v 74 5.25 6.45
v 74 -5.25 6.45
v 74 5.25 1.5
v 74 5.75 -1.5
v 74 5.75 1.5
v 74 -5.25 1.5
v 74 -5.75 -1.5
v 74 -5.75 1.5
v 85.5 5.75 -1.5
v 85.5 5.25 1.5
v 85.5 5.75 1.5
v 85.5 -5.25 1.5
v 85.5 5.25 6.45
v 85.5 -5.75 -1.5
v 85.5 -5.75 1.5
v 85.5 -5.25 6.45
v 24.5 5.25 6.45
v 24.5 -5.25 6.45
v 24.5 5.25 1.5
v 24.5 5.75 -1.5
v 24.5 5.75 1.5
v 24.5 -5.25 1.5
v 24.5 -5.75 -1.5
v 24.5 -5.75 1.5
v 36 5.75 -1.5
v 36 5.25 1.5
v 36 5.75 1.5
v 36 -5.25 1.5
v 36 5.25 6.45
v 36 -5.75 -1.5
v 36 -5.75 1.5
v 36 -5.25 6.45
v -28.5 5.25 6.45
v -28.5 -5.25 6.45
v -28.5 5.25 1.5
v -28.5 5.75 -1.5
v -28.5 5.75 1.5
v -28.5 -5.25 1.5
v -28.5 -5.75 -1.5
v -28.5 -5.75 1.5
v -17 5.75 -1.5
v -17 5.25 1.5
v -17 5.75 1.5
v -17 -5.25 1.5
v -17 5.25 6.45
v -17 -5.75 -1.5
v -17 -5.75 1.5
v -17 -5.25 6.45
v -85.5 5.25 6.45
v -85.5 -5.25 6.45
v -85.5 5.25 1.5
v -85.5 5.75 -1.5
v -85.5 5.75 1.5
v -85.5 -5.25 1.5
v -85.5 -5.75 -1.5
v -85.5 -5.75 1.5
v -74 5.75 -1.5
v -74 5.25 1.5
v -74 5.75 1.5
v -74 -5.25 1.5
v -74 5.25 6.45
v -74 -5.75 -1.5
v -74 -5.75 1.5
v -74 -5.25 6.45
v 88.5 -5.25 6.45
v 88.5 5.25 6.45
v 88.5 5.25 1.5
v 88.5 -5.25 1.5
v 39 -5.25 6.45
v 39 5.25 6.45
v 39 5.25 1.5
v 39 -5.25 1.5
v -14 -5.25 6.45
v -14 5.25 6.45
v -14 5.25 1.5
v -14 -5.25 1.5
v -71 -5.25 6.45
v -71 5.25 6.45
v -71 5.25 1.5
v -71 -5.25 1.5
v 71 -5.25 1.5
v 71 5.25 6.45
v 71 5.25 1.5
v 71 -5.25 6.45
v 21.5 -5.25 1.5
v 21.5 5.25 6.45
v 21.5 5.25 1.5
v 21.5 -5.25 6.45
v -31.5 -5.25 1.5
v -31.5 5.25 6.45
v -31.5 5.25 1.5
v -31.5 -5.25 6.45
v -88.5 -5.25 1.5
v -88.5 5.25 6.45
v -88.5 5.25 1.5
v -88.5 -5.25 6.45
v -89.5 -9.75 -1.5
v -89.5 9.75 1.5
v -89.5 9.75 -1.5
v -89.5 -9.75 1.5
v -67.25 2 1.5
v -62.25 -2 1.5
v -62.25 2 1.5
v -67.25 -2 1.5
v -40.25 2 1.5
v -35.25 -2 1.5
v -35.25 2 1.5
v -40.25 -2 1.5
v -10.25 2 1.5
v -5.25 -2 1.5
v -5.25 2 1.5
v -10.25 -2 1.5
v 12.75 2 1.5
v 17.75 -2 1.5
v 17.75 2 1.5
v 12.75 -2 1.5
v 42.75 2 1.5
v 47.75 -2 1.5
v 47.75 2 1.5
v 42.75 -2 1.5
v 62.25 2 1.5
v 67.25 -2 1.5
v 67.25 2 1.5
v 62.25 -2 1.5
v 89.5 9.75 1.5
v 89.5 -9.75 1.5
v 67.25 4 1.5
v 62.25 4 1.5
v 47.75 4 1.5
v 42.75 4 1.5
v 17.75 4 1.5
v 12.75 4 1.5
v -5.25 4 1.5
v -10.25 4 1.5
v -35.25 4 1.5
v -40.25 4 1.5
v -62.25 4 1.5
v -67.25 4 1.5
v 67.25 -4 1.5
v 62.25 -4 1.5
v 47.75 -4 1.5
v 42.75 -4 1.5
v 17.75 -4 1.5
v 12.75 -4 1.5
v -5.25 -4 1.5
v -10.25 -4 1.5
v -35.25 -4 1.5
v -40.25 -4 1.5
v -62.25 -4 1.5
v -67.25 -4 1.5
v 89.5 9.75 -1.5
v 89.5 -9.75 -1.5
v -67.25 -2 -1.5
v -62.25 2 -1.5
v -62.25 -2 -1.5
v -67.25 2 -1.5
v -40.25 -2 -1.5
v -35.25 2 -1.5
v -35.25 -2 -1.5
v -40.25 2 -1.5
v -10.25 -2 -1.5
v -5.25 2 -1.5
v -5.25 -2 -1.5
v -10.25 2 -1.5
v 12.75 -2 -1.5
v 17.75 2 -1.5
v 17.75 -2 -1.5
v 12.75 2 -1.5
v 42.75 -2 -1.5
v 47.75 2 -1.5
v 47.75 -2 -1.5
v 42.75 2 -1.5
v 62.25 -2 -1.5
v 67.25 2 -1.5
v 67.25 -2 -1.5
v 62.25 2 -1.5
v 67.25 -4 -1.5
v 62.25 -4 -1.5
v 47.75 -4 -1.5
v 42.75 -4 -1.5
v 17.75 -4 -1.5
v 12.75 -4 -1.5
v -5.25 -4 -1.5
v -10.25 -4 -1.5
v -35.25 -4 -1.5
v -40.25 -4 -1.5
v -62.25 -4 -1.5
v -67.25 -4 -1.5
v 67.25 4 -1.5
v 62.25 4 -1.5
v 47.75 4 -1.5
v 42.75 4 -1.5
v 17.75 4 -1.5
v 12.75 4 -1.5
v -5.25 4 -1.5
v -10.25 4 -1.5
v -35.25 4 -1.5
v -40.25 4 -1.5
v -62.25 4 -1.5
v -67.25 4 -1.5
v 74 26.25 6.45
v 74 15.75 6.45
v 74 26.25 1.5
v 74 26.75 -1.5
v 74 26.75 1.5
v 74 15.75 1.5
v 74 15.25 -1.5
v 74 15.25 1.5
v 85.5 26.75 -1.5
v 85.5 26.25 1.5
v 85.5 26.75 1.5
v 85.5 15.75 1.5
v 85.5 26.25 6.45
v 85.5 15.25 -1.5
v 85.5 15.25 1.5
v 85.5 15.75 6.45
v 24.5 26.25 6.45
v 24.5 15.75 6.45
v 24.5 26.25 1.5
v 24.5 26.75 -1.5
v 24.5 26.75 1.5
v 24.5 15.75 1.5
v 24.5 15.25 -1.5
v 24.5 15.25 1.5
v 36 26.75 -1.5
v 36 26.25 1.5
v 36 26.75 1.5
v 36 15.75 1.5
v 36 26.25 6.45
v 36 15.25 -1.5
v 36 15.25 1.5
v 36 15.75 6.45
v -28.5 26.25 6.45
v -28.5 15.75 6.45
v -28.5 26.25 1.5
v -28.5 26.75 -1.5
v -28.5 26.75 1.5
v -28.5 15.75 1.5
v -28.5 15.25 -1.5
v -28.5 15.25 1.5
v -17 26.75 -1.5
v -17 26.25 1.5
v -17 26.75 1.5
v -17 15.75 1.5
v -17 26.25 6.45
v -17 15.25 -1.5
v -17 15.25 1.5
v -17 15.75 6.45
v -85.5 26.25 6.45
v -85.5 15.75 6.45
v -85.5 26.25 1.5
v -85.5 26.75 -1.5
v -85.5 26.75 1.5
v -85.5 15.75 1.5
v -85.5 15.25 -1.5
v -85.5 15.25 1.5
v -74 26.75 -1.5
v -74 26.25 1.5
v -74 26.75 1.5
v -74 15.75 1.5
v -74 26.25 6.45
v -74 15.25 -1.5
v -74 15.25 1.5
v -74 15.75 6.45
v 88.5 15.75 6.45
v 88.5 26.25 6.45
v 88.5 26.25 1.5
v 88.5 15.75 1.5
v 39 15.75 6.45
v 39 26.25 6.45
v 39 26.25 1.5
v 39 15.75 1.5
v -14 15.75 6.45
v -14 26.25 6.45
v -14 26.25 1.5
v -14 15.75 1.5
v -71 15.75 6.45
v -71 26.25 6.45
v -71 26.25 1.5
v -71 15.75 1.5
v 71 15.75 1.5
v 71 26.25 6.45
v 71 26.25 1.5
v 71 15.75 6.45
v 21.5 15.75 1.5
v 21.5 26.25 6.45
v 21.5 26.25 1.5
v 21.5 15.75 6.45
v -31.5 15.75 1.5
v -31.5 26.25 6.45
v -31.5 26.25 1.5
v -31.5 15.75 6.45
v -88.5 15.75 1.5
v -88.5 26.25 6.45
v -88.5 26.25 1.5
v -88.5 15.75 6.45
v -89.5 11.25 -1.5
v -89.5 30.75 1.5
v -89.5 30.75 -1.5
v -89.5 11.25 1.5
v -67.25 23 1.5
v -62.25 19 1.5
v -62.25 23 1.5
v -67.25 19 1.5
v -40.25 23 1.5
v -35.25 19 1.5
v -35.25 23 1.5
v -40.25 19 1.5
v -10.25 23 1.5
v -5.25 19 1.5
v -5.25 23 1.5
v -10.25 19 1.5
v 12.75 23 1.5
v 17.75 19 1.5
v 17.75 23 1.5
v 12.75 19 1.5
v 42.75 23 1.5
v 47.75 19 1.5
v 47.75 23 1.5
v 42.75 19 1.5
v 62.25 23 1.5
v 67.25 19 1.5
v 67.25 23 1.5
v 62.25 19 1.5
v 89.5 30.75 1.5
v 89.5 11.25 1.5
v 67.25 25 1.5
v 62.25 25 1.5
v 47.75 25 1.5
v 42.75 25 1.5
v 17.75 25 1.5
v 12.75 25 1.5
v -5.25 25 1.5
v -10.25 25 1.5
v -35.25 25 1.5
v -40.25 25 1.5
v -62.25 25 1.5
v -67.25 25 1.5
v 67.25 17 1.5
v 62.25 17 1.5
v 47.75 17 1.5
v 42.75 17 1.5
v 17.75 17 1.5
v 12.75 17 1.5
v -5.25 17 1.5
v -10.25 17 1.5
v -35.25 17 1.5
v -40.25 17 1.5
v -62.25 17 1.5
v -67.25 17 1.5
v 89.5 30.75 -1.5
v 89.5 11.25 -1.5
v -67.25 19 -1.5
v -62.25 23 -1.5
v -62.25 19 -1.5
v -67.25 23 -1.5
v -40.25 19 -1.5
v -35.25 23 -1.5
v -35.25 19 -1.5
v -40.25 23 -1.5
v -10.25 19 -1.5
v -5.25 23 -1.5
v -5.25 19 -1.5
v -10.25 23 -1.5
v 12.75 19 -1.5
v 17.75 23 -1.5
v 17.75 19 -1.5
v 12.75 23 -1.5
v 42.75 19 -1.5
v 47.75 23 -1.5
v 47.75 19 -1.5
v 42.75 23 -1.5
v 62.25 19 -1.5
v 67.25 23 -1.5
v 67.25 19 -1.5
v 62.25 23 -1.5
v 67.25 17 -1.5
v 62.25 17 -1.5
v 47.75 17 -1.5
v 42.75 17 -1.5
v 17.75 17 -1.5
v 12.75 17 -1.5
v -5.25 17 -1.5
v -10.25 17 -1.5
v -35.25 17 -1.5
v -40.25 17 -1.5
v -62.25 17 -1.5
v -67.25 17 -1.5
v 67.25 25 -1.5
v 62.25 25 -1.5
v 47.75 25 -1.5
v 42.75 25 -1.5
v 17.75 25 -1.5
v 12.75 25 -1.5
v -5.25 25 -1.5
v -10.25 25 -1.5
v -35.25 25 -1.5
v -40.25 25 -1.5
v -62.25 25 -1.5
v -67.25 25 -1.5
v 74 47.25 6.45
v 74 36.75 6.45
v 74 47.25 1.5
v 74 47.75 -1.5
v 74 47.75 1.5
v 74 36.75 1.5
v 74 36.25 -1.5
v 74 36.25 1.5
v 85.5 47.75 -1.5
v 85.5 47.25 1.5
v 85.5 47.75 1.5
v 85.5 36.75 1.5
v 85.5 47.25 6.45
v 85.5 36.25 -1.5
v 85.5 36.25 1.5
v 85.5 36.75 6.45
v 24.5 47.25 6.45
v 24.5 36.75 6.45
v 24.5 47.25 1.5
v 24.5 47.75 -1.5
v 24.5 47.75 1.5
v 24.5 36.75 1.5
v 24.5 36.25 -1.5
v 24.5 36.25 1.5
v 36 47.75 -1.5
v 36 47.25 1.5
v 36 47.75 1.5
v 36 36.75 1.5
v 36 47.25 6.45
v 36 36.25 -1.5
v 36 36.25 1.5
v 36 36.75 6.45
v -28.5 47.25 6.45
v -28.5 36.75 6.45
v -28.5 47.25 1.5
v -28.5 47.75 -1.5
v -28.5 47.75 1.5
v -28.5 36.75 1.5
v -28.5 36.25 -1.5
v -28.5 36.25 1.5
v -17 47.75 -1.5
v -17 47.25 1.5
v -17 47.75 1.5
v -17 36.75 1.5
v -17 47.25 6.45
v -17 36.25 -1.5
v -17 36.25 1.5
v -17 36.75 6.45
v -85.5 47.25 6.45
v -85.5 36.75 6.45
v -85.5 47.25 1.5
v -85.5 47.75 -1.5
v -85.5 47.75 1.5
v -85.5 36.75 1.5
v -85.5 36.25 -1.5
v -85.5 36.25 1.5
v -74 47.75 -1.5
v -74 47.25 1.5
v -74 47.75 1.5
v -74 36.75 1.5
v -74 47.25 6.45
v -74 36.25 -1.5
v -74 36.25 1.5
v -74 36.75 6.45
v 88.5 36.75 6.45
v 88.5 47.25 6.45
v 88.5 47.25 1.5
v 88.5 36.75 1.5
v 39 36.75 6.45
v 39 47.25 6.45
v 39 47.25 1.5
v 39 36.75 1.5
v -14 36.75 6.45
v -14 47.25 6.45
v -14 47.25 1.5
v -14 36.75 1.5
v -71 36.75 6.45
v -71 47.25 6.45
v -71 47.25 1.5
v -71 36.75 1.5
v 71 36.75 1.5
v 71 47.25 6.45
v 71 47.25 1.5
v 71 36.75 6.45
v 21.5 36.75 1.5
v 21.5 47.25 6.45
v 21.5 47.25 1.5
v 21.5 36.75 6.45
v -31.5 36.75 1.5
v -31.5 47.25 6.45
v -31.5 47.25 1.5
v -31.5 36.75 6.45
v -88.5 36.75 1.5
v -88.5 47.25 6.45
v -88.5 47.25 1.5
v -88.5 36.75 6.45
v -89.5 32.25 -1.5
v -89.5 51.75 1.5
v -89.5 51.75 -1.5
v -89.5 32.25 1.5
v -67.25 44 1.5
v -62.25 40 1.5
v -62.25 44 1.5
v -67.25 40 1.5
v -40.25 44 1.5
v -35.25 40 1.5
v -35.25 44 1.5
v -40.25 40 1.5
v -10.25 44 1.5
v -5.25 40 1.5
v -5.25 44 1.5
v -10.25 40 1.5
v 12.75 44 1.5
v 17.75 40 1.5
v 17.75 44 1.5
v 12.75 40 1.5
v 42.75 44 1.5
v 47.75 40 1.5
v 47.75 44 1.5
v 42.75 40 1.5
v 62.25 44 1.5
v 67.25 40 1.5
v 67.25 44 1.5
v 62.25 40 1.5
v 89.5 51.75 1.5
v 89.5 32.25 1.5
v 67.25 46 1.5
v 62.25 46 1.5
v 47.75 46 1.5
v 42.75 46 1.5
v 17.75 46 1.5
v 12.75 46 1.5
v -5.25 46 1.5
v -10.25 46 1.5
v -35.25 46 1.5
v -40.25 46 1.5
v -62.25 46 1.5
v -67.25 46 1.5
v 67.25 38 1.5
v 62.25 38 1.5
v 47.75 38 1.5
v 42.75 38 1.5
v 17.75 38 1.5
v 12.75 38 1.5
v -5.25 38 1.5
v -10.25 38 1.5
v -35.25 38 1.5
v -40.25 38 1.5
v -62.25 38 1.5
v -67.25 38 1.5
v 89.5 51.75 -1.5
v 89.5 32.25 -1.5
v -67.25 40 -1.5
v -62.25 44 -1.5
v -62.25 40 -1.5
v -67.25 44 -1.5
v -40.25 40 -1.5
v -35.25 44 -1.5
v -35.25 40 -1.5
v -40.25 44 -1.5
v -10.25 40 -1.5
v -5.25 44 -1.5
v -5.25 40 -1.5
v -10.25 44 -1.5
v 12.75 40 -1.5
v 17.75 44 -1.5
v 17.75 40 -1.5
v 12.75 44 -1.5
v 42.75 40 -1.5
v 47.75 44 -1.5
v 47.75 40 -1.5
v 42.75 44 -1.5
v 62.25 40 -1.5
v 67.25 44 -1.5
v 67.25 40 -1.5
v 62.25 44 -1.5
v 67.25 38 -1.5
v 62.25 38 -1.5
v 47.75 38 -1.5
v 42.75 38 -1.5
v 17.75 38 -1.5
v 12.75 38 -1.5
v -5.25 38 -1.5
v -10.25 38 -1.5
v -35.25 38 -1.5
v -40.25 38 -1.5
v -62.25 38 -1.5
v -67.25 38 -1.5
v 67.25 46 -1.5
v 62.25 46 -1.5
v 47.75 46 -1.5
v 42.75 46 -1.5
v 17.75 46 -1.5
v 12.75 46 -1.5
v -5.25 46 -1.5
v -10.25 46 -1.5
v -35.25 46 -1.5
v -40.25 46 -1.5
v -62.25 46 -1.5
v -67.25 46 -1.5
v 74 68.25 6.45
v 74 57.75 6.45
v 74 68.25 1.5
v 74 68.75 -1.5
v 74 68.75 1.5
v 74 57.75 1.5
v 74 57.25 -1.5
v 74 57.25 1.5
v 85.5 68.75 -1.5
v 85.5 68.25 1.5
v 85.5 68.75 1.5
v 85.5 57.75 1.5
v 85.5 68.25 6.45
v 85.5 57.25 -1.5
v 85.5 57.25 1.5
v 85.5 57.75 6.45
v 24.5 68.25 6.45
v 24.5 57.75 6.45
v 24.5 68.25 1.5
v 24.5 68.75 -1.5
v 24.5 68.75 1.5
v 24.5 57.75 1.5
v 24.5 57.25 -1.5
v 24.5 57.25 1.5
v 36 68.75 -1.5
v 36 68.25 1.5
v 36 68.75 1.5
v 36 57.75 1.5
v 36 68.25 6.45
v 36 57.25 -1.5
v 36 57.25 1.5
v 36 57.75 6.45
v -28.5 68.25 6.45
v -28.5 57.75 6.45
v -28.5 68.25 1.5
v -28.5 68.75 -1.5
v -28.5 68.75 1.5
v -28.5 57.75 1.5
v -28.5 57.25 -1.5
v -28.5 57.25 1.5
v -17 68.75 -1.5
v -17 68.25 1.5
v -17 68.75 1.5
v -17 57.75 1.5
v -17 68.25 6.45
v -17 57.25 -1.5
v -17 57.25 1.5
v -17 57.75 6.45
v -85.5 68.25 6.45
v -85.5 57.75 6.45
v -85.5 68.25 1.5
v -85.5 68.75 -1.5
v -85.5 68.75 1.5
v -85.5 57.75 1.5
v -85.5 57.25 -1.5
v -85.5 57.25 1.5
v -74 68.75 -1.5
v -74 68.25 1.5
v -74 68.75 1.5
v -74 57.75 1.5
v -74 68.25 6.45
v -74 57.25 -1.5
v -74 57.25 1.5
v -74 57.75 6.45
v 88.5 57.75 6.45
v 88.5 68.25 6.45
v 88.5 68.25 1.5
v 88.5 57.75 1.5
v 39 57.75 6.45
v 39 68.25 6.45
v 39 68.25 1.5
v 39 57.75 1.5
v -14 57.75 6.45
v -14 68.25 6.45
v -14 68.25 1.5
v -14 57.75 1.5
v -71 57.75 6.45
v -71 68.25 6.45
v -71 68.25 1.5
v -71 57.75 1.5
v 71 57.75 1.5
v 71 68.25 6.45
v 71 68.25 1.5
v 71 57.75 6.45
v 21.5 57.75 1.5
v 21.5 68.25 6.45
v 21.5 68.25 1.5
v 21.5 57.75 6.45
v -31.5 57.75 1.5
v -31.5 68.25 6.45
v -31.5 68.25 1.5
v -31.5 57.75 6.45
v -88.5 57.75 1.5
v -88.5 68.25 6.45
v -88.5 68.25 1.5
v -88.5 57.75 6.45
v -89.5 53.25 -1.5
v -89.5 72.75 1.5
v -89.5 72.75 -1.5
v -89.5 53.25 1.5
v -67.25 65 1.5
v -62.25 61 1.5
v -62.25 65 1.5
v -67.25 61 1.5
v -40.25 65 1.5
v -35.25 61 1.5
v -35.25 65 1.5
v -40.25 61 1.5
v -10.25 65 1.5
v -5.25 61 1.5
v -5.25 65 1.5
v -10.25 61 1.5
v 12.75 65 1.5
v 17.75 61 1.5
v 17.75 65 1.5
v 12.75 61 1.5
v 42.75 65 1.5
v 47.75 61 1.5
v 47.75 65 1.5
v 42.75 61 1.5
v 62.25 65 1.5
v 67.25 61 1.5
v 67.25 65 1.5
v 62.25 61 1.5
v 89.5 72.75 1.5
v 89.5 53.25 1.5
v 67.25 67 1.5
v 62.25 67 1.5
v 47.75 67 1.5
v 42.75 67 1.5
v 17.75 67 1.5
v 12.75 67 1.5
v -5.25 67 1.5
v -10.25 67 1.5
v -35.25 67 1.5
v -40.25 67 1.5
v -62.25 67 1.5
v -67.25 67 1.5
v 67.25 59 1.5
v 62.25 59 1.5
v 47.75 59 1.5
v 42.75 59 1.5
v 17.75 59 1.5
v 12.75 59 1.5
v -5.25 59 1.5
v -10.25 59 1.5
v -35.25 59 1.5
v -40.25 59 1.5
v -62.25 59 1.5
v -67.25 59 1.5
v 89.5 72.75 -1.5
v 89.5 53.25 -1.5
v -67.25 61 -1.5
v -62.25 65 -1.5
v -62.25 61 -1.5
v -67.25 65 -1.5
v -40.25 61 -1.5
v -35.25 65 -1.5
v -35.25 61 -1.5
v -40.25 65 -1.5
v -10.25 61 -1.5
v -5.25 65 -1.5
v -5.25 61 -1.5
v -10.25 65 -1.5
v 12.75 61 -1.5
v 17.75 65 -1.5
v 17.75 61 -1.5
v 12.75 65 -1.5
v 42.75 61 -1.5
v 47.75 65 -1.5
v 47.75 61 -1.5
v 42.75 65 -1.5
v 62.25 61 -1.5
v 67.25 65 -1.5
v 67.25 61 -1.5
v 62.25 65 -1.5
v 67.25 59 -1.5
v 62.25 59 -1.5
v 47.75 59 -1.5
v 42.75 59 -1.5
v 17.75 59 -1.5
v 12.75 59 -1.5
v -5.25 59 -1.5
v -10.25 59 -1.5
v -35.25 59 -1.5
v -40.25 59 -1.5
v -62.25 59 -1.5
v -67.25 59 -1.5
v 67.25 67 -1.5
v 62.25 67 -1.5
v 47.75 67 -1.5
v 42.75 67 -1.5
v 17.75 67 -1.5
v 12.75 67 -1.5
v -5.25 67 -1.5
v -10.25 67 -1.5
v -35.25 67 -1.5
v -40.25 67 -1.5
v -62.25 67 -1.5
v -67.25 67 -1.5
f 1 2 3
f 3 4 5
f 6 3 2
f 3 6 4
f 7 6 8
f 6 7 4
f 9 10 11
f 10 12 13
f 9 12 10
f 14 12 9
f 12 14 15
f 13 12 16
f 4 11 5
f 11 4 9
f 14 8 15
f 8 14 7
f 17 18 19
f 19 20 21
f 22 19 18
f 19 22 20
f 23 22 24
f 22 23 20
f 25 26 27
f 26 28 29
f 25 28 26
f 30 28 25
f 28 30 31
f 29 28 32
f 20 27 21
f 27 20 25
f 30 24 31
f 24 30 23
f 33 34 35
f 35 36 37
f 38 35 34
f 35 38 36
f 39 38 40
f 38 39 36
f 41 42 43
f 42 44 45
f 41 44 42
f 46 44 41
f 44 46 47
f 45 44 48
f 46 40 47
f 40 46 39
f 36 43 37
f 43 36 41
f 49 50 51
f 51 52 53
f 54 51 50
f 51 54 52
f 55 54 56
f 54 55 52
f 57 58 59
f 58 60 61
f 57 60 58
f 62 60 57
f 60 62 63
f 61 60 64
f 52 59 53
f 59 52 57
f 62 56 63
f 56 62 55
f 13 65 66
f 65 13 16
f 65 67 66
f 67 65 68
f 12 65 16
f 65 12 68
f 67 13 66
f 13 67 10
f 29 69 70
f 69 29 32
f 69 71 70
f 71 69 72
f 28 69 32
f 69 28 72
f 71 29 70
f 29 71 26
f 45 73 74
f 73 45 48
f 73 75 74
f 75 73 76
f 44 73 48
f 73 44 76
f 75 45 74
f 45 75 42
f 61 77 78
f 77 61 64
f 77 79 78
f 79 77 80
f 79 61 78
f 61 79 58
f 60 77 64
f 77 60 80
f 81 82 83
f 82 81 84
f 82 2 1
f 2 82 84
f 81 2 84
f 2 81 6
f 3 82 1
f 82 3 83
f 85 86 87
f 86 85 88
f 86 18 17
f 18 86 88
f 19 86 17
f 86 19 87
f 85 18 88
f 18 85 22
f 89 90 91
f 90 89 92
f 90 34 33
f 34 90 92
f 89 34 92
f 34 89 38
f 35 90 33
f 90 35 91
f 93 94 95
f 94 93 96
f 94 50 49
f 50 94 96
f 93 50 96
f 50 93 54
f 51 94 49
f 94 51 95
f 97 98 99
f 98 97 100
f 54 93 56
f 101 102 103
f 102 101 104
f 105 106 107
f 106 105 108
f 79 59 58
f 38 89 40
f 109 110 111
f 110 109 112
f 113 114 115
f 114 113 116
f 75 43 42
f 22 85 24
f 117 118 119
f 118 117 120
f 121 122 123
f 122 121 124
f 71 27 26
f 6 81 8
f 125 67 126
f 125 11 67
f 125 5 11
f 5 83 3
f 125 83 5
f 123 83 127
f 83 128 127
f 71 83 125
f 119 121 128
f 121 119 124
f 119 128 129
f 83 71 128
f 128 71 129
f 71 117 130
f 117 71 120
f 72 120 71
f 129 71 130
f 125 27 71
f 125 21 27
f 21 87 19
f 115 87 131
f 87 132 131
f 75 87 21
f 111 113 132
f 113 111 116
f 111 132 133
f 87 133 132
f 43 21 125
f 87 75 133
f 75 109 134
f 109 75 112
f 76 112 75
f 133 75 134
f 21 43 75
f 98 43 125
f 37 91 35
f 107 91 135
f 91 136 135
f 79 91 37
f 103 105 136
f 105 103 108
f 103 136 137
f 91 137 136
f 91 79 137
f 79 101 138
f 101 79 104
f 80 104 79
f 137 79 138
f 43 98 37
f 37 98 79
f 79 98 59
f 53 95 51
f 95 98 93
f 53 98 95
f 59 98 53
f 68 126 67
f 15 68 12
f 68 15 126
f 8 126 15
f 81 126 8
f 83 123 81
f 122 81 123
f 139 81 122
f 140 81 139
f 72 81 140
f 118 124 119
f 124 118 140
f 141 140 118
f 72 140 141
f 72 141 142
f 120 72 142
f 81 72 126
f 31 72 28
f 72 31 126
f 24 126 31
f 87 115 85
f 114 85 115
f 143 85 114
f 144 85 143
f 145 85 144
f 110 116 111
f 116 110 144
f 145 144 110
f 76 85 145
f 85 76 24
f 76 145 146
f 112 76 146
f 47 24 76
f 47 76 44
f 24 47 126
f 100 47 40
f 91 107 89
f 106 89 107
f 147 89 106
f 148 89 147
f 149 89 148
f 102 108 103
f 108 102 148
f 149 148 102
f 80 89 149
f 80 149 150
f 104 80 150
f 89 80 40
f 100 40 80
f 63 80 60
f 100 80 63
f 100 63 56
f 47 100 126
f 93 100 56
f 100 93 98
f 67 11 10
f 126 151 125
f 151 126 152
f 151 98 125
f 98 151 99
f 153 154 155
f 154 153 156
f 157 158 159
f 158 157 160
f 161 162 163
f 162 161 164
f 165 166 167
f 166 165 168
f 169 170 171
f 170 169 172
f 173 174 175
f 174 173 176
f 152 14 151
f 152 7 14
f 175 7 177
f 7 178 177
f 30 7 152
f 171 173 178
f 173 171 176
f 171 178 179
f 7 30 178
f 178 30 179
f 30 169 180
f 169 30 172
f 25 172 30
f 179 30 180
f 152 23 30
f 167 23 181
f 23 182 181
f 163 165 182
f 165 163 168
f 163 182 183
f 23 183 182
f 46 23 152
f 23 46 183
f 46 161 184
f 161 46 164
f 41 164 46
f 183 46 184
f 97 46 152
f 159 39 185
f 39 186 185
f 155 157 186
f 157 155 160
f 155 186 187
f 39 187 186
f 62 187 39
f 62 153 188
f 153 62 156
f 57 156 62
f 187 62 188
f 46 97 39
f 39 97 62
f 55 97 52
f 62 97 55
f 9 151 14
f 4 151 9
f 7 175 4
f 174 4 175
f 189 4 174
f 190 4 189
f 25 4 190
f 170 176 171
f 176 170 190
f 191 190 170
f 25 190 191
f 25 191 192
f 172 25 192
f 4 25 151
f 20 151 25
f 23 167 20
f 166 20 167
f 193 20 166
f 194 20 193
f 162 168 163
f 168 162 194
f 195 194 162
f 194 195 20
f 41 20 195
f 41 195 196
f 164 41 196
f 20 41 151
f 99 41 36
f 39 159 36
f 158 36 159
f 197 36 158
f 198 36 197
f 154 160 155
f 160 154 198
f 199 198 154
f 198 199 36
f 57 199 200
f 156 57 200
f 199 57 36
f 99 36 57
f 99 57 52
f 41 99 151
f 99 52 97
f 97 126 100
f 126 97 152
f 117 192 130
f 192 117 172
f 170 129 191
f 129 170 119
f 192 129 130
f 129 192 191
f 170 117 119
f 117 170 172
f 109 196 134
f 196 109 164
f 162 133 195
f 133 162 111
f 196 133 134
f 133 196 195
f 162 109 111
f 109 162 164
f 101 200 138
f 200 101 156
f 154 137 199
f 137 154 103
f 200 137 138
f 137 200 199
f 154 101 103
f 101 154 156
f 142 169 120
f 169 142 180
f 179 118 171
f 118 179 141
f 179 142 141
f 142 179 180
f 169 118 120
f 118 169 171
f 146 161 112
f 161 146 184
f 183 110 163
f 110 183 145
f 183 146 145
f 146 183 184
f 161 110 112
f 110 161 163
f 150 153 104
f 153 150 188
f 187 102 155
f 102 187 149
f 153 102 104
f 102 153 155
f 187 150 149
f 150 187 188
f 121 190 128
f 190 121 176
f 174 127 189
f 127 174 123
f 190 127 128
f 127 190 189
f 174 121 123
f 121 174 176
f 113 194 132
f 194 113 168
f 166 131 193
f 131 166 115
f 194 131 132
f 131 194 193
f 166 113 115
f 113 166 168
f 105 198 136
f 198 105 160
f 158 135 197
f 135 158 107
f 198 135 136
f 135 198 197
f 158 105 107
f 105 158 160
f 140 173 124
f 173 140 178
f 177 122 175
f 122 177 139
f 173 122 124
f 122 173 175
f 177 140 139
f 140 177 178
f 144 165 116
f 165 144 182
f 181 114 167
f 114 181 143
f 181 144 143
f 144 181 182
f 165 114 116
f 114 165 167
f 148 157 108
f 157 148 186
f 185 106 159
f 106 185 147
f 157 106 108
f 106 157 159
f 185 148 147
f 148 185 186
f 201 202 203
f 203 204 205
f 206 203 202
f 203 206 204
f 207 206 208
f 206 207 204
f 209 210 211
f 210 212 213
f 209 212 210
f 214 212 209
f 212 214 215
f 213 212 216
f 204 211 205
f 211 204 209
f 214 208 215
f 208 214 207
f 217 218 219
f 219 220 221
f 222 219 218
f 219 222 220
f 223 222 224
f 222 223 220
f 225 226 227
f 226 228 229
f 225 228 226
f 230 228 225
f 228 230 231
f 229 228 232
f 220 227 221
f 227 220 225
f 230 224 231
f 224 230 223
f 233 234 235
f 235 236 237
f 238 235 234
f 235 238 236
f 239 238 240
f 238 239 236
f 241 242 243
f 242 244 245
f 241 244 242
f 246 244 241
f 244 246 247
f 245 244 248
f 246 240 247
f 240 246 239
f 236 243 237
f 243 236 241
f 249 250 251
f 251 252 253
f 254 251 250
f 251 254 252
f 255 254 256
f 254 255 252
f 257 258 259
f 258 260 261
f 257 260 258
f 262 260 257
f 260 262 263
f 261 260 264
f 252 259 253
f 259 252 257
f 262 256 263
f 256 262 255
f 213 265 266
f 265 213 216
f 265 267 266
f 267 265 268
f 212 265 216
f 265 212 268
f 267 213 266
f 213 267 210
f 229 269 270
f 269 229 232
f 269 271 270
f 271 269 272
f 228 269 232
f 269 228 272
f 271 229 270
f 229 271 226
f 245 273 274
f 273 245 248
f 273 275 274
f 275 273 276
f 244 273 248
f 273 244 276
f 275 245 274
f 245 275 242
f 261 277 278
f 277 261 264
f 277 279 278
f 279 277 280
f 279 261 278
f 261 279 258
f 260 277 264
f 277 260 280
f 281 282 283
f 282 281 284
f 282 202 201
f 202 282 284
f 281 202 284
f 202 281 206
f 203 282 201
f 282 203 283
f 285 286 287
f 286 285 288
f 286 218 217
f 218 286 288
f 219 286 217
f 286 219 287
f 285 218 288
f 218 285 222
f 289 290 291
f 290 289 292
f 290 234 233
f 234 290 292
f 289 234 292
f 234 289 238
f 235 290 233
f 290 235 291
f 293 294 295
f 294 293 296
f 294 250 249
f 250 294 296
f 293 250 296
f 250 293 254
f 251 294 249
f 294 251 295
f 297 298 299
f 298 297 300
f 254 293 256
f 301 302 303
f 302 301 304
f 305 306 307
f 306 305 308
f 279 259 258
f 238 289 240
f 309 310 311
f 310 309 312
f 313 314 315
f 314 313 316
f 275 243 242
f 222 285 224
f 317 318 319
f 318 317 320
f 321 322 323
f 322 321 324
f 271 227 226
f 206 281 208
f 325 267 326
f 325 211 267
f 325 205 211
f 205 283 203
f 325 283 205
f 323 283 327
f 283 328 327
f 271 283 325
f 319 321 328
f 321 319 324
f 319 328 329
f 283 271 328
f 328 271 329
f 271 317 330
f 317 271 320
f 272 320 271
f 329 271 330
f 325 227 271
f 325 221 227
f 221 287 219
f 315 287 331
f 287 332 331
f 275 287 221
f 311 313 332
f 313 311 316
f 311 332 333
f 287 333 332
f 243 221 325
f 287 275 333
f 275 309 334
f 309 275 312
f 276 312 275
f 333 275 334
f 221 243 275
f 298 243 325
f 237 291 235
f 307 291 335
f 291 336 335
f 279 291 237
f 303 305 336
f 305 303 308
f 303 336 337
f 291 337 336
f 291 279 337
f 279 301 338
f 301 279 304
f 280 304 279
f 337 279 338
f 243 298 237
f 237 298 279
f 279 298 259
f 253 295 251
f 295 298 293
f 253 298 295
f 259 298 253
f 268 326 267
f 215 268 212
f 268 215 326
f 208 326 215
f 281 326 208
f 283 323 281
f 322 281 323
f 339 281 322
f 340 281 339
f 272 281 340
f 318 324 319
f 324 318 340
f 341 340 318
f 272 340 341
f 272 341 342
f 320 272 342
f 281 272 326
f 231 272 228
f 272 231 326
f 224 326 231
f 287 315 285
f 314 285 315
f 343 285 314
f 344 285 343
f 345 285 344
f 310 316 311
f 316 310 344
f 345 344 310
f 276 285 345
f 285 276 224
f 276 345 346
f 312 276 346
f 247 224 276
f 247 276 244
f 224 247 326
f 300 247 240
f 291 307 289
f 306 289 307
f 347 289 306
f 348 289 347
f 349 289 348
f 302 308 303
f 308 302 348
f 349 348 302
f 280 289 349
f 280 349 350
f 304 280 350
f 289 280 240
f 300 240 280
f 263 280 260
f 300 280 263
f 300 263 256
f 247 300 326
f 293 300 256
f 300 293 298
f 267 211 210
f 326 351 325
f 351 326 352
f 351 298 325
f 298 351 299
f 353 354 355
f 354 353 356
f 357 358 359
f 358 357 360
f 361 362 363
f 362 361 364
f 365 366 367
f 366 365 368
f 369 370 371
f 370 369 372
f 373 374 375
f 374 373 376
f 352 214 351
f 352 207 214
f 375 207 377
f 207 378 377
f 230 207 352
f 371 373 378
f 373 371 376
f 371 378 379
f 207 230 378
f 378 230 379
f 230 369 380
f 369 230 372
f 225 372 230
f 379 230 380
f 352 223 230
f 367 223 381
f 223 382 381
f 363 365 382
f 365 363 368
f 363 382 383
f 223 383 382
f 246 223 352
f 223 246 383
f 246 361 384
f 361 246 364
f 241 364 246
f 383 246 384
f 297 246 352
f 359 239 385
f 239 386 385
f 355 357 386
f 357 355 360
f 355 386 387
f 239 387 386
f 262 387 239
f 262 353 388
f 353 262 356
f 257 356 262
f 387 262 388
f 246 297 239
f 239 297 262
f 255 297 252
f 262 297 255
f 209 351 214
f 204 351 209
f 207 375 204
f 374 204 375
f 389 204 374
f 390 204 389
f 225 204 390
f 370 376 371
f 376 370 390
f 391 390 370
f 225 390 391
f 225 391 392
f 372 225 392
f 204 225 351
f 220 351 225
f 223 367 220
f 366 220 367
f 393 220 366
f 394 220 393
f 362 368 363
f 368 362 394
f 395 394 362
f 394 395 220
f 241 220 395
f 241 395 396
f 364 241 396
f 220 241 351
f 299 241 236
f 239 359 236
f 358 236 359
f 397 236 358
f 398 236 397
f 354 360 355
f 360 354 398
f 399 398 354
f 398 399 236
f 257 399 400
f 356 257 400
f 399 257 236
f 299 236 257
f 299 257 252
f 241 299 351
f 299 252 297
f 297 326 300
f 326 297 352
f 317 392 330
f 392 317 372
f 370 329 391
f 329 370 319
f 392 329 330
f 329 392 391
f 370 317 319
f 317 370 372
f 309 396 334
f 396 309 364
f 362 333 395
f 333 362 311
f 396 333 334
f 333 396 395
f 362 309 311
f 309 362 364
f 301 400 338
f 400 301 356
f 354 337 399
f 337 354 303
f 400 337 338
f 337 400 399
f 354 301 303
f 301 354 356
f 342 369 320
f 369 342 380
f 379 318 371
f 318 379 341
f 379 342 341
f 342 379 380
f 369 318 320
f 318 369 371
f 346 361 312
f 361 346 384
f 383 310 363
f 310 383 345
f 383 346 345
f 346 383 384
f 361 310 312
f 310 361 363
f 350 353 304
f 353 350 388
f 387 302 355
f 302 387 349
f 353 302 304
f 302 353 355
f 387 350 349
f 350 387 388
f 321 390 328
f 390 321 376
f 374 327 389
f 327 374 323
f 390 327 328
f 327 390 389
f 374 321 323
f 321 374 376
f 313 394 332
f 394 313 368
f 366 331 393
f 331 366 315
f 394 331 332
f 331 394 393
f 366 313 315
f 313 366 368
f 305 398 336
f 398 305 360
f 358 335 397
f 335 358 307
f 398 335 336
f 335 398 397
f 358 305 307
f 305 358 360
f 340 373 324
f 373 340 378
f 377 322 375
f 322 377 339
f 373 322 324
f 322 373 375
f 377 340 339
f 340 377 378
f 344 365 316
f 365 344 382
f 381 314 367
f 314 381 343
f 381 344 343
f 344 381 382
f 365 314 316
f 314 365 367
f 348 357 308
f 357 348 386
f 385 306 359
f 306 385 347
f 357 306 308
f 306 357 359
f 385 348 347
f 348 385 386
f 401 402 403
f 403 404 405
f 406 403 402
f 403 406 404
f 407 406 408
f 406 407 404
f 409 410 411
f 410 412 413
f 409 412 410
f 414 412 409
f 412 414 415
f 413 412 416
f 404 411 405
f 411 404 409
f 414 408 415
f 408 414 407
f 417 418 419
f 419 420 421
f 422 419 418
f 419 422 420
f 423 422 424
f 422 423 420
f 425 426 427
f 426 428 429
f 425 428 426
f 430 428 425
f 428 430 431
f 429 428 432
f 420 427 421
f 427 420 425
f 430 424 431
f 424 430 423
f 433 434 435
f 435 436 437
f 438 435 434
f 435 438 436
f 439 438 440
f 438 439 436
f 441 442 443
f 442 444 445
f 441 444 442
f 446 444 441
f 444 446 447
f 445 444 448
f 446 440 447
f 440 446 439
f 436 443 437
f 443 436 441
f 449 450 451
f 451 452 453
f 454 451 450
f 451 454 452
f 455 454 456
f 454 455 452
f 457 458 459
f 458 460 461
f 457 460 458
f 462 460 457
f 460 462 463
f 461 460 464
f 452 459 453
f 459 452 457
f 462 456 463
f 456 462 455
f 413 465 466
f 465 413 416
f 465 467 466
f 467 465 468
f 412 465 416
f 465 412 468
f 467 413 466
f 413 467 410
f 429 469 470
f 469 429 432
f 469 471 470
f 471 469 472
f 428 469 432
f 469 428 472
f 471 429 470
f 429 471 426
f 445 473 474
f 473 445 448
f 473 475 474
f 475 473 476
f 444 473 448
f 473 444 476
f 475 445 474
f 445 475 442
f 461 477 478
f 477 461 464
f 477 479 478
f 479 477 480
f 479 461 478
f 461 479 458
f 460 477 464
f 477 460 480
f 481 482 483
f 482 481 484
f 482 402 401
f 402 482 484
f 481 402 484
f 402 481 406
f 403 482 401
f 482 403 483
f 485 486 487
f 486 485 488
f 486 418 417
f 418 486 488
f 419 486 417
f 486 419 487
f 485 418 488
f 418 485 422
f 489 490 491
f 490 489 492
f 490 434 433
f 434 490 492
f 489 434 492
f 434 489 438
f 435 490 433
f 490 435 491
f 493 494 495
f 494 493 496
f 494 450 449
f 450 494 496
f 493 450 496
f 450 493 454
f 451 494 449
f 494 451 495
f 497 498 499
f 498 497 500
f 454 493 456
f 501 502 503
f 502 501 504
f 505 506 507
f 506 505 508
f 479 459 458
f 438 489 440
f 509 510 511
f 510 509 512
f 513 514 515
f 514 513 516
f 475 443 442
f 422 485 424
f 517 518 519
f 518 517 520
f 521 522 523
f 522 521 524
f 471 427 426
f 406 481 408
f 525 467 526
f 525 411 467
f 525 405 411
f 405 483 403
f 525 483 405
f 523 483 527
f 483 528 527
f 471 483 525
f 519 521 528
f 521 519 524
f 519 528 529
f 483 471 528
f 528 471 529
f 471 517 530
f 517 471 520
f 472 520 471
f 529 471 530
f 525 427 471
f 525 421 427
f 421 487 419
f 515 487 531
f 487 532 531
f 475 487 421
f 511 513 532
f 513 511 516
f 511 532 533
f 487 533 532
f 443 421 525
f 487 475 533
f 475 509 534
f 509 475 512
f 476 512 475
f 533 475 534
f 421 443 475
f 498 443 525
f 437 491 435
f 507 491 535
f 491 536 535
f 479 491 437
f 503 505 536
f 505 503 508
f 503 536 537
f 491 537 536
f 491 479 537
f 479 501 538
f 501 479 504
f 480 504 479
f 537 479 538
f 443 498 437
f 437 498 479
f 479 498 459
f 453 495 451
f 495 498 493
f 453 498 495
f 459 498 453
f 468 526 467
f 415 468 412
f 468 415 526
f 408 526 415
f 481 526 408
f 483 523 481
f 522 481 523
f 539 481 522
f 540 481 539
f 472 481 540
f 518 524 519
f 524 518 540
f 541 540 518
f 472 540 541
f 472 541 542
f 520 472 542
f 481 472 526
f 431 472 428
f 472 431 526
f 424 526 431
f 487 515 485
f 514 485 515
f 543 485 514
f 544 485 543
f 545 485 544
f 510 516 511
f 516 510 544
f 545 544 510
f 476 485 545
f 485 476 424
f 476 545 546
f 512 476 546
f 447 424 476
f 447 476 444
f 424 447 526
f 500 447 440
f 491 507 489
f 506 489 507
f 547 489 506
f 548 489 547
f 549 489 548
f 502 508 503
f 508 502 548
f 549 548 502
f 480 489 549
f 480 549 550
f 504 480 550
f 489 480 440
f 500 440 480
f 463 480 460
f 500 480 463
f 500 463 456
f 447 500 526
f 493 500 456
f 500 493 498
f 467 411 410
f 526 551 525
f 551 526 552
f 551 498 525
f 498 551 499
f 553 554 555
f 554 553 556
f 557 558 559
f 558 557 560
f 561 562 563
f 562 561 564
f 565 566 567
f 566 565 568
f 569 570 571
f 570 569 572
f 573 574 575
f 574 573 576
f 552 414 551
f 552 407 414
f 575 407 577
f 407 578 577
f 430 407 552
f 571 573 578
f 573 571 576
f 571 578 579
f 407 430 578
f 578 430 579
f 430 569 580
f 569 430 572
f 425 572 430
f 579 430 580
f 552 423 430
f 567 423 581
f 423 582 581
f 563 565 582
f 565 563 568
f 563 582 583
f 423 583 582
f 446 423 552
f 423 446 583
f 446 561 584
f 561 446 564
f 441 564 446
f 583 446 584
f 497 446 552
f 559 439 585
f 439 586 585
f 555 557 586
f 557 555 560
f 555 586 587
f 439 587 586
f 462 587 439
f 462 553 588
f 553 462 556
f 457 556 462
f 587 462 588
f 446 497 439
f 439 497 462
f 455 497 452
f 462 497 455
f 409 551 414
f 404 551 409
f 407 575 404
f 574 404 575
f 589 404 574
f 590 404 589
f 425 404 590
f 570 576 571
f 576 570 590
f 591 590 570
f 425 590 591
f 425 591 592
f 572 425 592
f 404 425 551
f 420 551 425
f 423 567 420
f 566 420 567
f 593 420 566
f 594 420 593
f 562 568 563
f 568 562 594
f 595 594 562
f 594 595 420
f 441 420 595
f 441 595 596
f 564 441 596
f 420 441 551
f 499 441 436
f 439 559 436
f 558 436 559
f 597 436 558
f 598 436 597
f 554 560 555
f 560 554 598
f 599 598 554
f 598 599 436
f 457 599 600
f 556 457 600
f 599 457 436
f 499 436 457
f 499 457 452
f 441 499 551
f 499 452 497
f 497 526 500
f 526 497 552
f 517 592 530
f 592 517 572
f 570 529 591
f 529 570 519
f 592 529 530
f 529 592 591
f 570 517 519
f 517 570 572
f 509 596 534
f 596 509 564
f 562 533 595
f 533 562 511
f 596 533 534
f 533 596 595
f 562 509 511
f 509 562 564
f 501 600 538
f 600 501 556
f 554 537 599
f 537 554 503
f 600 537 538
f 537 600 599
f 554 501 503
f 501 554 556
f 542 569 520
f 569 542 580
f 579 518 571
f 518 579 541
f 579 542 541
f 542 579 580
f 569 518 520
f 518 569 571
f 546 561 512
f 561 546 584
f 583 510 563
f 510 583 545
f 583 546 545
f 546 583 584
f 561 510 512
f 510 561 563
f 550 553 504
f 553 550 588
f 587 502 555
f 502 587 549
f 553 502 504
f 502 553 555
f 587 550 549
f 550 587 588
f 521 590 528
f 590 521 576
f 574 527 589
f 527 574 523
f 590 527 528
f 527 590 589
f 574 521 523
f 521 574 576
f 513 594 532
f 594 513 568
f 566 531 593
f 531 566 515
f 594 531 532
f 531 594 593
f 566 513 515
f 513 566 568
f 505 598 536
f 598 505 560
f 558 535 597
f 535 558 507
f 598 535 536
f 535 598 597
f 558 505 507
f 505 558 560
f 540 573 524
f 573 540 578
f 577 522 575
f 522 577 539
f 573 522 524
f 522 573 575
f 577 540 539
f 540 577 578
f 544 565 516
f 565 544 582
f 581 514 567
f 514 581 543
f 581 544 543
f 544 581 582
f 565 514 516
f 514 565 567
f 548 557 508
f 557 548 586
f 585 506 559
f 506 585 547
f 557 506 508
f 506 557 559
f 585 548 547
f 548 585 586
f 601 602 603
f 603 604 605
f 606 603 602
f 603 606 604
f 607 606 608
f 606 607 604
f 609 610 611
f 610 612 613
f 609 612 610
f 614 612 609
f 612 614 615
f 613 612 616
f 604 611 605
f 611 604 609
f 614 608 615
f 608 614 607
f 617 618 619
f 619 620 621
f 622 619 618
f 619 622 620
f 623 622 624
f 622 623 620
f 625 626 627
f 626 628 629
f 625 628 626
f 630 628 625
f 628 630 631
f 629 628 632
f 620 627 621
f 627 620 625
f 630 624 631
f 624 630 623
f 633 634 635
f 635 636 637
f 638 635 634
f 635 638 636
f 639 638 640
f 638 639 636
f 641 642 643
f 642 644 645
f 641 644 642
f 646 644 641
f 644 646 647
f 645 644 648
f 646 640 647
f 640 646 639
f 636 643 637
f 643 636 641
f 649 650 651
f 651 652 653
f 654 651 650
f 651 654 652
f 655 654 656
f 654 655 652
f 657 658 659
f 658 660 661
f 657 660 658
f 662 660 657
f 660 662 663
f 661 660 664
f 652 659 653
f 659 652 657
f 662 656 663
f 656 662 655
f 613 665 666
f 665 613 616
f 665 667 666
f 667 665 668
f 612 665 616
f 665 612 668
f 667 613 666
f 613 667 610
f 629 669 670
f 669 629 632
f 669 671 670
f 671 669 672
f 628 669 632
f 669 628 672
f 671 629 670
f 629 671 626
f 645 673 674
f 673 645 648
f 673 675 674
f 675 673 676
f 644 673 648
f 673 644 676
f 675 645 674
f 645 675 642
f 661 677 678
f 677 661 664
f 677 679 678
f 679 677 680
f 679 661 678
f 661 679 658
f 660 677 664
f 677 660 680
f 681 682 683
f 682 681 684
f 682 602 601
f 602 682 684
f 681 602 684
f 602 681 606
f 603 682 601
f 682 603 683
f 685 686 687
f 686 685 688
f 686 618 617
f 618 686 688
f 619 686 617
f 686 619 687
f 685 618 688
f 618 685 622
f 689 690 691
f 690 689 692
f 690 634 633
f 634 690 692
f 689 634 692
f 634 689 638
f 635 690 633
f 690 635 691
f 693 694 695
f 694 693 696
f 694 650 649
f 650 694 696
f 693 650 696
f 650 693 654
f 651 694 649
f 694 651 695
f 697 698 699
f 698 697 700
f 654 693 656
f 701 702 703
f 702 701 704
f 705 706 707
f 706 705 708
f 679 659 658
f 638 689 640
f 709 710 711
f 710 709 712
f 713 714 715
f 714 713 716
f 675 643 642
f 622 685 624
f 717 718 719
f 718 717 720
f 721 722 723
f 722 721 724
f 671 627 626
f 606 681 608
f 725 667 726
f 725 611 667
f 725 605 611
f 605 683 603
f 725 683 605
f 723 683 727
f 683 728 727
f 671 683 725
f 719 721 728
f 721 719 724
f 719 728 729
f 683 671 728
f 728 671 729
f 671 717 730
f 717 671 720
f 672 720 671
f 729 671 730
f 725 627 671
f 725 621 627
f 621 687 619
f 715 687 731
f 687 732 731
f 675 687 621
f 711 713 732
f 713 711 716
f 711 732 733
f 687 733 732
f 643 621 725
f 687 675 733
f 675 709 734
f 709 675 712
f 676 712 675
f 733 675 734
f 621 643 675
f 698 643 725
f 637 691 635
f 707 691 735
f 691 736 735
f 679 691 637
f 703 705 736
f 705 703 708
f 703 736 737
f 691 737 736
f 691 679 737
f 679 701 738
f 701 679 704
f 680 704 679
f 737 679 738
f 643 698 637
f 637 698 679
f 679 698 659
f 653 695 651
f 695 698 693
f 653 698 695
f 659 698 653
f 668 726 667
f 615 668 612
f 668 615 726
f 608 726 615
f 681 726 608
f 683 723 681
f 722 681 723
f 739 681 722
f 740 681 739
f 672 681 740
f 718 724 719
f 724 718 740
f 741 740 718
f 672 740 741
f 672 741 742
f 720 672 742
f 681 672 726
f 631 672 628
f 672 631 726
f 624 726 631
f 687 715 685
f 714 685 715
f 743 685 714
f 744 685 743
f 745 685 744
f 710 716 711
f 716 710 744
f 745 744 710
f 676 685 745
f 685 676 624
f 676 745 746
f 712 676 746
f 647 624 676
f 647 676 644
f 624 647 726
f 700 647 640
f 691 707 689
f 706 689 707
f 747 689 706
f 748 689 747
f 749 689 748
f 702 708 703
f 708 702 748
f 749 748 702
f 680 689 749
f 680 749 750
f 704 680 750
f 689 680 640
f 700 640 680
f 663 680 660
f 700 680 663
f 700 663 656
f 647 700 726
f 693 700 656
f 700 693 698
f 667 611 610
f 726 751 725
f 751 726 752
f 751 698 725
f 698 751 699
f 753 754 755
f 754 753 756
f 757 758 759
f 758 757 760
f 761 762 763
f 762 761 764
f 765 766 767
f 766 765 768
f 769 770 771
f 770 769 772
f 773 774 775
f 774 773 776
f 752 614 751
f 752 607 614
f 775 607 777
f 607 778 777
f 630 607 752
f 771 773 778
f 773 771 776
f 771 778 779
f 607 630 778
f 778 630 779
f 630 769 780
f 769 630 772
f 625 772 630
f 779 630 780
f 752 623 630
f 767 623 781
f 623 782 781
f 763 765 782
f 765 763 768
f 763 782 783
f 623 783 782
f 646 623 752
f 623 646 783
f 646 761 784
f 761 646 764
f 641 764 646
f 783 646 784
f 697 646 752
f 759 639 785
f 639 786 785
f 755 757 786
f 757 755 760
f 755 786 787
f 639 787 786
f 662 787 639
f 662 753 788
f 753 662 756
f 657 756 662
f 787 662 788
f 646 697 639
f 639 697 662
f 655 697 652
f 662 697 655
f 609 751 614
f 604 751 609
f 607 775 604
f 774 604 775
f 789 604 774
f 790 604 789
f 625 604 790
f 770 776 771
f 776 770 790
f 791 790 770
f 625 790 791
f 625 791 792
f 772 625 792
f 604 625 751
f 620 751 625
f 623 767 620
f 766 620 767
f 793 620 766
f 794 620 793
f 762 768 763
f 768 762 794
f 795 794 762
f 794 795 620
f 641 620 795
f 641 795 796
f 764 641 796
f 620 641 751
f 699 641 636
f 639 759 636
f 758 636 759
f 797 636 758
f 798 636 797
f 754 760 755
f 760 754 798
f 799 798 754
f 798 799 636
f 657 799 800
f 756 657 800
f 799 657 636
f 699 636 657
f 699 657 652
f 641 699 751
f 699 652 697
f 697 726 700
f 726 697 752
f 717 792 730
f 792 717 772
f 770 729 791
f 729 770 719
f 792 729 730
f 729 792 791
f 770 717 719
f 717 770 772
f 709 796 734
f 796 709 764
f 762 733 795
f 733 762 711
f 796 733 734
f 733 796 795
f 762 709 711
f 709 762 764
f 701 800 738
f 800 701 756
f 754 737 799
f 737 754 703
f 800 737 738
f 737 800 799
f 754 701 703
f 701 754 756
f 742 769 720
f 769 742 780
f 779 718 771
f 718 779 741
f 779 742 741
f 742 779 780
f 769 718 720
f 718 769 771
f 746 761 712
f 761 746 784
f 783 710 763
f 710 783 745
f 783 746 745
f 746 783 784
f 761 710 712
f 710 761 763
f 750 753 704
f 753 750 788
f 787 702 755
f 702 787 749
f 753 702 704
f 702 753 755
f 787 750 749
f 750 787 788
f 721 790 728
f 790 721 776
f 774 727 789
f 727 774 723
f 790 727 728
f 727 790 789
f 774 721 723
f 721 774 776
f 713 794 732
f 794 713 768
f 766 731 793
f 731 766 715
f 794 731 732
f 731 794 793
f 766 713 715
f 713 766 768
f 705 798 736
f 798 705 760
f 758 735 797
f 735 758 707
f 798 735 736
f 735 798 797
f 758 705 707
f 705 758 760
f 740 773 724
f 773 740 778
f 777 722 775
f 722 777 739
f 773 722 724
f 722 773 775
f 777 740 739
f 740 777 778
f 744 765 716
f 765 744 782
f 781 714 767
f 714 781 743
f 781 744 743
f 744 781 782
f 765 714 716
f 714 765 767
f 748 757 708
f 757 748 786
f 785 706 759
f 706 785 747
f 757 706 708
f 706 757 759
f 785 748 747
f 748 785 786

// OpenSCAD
// file: vector.scad
function is_nan(x) = x != x ;

// reverse vector
function reverse(v) = [for (i =[len(v)-1:-1:0]) v[i]];
// repeat vector n-times
function repeat(v, n) = [for (i=[0:n*len(v)-1])  v[ i%len(v) ] ];
// allow negative indexes for vector (counting from the back). -1 is last element in array
function v_index(v, n) = is_undef(n) ? len(v) : n < 0 ? len(v)+n : n ;
// cut slice of vertor. `start` included , `end` excluded.
function slice(v, start, end=undef) = [for (i=[start:v_index(v,end)-1]) v[i] ];

function v_add(v, n) = [for (i=[0:len(v)-1]) v[i]+n ];

assert(reverse([1,2,3]) == [3,2,1]);
assert(repeat([1,2],3) ==  [1, 2, 1, 2, 1, 2]);
assert(v_index([1,2,3],-1)==2);
assert(v_index([1,2,3],0) == 0);
assert(v_index([1,2,3],undef)==3);
assert(slice([1,2,3],1,-1)==[2]);
assert(slice([1,2,3],1)==[2,3]);
assert(v_add([1,2,3],1)==[2,3,4]);
// file: 2d.scad
use <vector.scad>

function max_x(a, i = 0) = (len(a) == 0) ? 0 : (i < len(a) - 1) ? max(a[i][0], max_x(a, i+1)) : a[i][0];
function shift_x(a, dx, scaler=1) = [for ( p=a) [scaler*p[0]+dx,p[1]] ];

function scale_poly(a, s=[1,1]) = [for (p=a) [ s[0]*p[0], s[1]*p[1] ]];
function shift_poly(a, d=[0,0]) = [for (p=a) [ d + p ]];

function inverse_x(a) = shift_x(reverse(a),max_x(a),-1);
function mirror_x(a) = shift_x(reverse(a),0,-1);

function symmetry_x(a) = scale_poly(reverse(a),s=[-1,1]);
function symmetry_y(a) = scale_poly(reverse(a),s=[1,-1]);

function concat_with_undefs(prev,next) = 
    len(prev) == 0 ? next : 
        let (prev_last_p = prev[v_index(prev,-1)]) 
        is_undef(prev_last_p[1])  
            ? concat(slice(prev,0,-1),[[prev_last_p[0],next[0][1]]],next) 
            : is_undef(next[0][1]) 
                ? concat(prev, [[next[0][0],prev_last_p[1]]], slice(next,1)) 
                : concat(prev, next) ;

function join_poly(polys, r = [], i=0) = (i < len(polys)) ? 
    join_poly( polys, concat_with_undefs(r,shift_x(polys[i],max_x(r))) ,i+1) : r;

function line_segment(p1,p2) = [p1,[p2[0]-p1[0], p2[1] - p1[1]]];

function ls_slope(ls) = ls[1][1]/ls[1][0] ;

function ls_distance(ls) = sqrt(pow(ls[1][1],2)+pow(ls[1][0],2));

function ls_angle(ls) = 
    let (ss = sign(ls[1][1]) == -1 ? -1 : 1)
    let (sc = sign(ls[1][0]) == -1 ? -1 : 1)
    let (ts = asin(ls[1][1]/ls_distance(ls))) 
    ts != 0 ? ( sc == -1 ? ss * 180 - ts : ts ) : ss*acos(ls[1][0]/ls_distance(ls))  ;
    
assert(ls_angle([[0, 0], [1, 0]])==0);
assert(ls_angle([[0, 0], [-1, 0]])==180);


function angle_diff_cw(a1, a2) = a1 < a2 ? angle_diff_cw(a1+360, a2) : a1 - a2 ;

function angle_diff_ccw(a1, a2) = angle_diff_cw(a2, a1);

function ls_midpoint(ls) = ls[0]+ls[1]/2;

function ls_endpoint(ls) = ls[0]+ls[1];

function line(slope,pt) = [slope, pt[1]-slope*pt[0]];

function l_y(l,x) = l[0]*x + l[1];

function l_segment(l,x1,x2) = line_segment([x1, l_y(l,x1)], [x2, l_y(l,x2)]);

function ls_line(ls) = let(slope=ls_slope(ls)) line(slope,ls[0]);

function ls_perpendicular(ls) = 
    let (l = ls_line(ls)) 
    let (mp = ls_midpoint(ls))
    line(-1/l[0], mp);

function intersect_lines(l1, l2) = 
    let (x = (l2[1]-l1[1])/(l1[0]-l2[0]))
    [x,l_y(l1,x)];

function interpolate_point(ls,fraction) =  [
    ls[0][0] + fraction*ls[1][0],
    ls[0][1] + fraction*ls[1][1]
];


function bezier_curve( a, b, c ) =
    len(a)==3 ? _bezier_curve(a[0],a[1],a[2]) : _bezier_curve(a,b,c);

function _bezier_curve( p1, p2, p3 ) =
    [line_segment(p1,p2), line_segment(p2, p3)];

function curve_point(bc, fraction) =
    interpolate_point(
        line_segment(
            interpolate_point(bc[0],fraction), 
            interpolate_point(bc[1], fraction)), 
        fraction);

function bc_poly(bc, n_points=10) = [for ( f = [0:1/n_points:1]) curve_point(bc, f)] ;

function rake_poly(up_ramp, down_to_valley, n_of_valleys) = 
    join_poly(concat(
        [up_ramp],
        repeat(
            [
                down_to_valley, 
                inverse_x(down_to_valley) // up on other side of the valley
            ], 
            n_of_valleys),
        [inverse_x(up_ramp)] // down ramp
    ));

function arc_point(a,f) = 
    let(c = a[0])
    let(r = a[1])
    let(initial_angle = a[2])
    let(cw = a[3])
    let(range = a[4])
    let (angle = cw ? initial_angle - f * range : initial_angle + f * range)
    c+[r*cos(angle),r*sin(angle)];

function arc_poly(a, n_points=10) = [for ( f = [0:1/n_points:1]) arc_point(a, f)] ;

function arc( a, b, c ) =
    len(a)==3 ? _arc(a[0],a[1],a[2]) : _arc(a,b,c);

function _arc( p1, p2, p3 ) =
    let(ls1 = line_segment(p1,p2))
    let(ls2 = line_segment(p2,p3))
    let(ls3 = line_segment(p1,p3))    
    let(lp1 = ls_perpendicular(ls1))
    let(lp2 = ls_perpendicular(ls2))
    let(lp3 = ls_perpendicular(ls3))
    let(c12 = intersect_lines(lp1,lp2))
    let(c23 = intersect_lines(lp2,lp3))
    let(c13 = intersect_lines(lp1,lp3))
    let(c = !is_nan(c23[0]) ? c23 : !is_nan(c13[0])? c13 : c12 )
    let(r1 = line_segment(c,p1))
    let(r2 = line_segment(c,p2))
    let(r3 = line_segment(c,p3))
    let(r = ls_distance(r1))
    let(a1 = ls_angle(r1))
    let(a2 = ls_angle(r2))
    let(a3 = ls_angle(r3))
    let(cw = angle_diff_cw(a1,a2) < angle_diff_cw(a1,a3))
    let(a_diff = cw ? angle_diff_cw(a1,a3) : angle_diff_ccw(a1,a3))
    [c,r,a1,cw,a_diff];


// linear interpolation or extrapolation (middle by default or any ratio) 
// using 2 points `a` and `b`
function mid(a,b,ratio=.5) = b + (a-b)*ratio ; 

function triangle(a,b,split=.5,height=.5) =
    let (delta = (mid(a,b,height)-b) * [[0,1],[-1,0]])
    let (z = mid(a,b,split) + delta)
    [a,z,b];

assert(arc([0,0],[0,1],[1,1])==arc([[0,0],[0,1],[1,1]]));
assert(bezier_curve([0,0],[0,1],[1,1])==bezier_curve([[0,0],[0,1],[1,1]]));

// echo(arc([0,0],[0,1],[1,1]));
// echo(arc(triangle([0,0],[1,1],.5,-.5)));

assert(arc([0,0],[0,1],[1,1])==arc(triangle([0,0],[1,1],.5,-.5)));
assert(arc([1,1],[1,2],[2,2])==arc(triangle([1,1],[2,2],.5,-.5)));

// echo(arc([0,0],[1,0],[1,1]));
// echo(arc(triangle([0,0],[1,1],.5,.5)));

assert(arc([0,0],[1,0],[1,1])==arc(triangle([0,0],[1,1],.5,.5)));
assert(arc([1,1],[2,1],[2,2])==arc(triangle([1,1],[2,2],.5,.5)));

// echo(arc(triangle([1,0], [-1,0])));
assert(arc(triangle([1,0], [-1,0])) ==  [[0, 0], 1, 0, false, 180]);

// echo(arc(triangle([0,-1], [0,1])));
assert(arc(triangle([0,-1], [0,1])) ==  [[0, 0], 1, -90, false, 180]);

// echo(arc(triangle([0,-1], [0,1],height=-.5)));
assert(arc(triangle([0,-1], [0,1], height=-.5)) ==  [[0, 0], 1, -90, true, 180]);
// main file
use <2d.scad>

square_hole = 11.5;

crossbar_spacing = [ 49.5, 53, 57];

thickness = 3;
offset = 4 ;
lip_hight = 5;
lip_offset = square_hole/2 + thickness/2;
v_gap = 2.5;
tie_hole = [5, 2];
cb_hole = [square_hole, square_hole];

e=.05;

function addl(list, c = 0) = c < len(list) - 1 ? list[c] + addl(list, c + 1) : list[c];

cb_width = addl( crossbar_spacing );
cb_0 = cb_width/2;
cb_offsets = [ for(i = [0:len(crossbar_spacing)-1]) addl(crossbar_spacing, i)-cb_0, -cb_0 ];
echo(cb_offsets);
l = square_hole + 2 * offset + cb_width;
h = square_hole + 2 * offset ;
echo(l);

module bat_spacer(){
    module boxes(){
        cube([l,h,thickness], center=true);
        for(x=cb_offsets) translate([x+lip_offset,0,thickness/2+lip_hight/2-e]) cube([thickness,square_hole-1,lip_hight], center=true);
        for(x=cb_offsets) translate([x-lip_offset,0,thickness/2+lip_hight/2-e]) cube([thickness,square_hole-1,lip_hight], center=true);
    }
    module hole(d){
        cube([d[0],d[1],2*lip_hight+2*e+thickness], center=true);
    }
    module holes(){
        for(x=cb_offsets) translate([x,0,0]) hole(cb_hole);
        for(x=cb_offsets) translate([x+15,3,0]) hole(tie_hole);
        for(x=cb_offsets) translate([x+15,-3,0]) hole(tie_hole);
        for(x=cb_offsets) translate([x-15,3,0]) hole(tie_hole);
        for(x=cb_offsets) translate([x-15,-3,0]) hole(tie_hole);

    }

    difference(){
        boxes();
        holes();
    }
}


 for (i=[0:3])
    translate([0,i*21,0])
     bat_spacer();
